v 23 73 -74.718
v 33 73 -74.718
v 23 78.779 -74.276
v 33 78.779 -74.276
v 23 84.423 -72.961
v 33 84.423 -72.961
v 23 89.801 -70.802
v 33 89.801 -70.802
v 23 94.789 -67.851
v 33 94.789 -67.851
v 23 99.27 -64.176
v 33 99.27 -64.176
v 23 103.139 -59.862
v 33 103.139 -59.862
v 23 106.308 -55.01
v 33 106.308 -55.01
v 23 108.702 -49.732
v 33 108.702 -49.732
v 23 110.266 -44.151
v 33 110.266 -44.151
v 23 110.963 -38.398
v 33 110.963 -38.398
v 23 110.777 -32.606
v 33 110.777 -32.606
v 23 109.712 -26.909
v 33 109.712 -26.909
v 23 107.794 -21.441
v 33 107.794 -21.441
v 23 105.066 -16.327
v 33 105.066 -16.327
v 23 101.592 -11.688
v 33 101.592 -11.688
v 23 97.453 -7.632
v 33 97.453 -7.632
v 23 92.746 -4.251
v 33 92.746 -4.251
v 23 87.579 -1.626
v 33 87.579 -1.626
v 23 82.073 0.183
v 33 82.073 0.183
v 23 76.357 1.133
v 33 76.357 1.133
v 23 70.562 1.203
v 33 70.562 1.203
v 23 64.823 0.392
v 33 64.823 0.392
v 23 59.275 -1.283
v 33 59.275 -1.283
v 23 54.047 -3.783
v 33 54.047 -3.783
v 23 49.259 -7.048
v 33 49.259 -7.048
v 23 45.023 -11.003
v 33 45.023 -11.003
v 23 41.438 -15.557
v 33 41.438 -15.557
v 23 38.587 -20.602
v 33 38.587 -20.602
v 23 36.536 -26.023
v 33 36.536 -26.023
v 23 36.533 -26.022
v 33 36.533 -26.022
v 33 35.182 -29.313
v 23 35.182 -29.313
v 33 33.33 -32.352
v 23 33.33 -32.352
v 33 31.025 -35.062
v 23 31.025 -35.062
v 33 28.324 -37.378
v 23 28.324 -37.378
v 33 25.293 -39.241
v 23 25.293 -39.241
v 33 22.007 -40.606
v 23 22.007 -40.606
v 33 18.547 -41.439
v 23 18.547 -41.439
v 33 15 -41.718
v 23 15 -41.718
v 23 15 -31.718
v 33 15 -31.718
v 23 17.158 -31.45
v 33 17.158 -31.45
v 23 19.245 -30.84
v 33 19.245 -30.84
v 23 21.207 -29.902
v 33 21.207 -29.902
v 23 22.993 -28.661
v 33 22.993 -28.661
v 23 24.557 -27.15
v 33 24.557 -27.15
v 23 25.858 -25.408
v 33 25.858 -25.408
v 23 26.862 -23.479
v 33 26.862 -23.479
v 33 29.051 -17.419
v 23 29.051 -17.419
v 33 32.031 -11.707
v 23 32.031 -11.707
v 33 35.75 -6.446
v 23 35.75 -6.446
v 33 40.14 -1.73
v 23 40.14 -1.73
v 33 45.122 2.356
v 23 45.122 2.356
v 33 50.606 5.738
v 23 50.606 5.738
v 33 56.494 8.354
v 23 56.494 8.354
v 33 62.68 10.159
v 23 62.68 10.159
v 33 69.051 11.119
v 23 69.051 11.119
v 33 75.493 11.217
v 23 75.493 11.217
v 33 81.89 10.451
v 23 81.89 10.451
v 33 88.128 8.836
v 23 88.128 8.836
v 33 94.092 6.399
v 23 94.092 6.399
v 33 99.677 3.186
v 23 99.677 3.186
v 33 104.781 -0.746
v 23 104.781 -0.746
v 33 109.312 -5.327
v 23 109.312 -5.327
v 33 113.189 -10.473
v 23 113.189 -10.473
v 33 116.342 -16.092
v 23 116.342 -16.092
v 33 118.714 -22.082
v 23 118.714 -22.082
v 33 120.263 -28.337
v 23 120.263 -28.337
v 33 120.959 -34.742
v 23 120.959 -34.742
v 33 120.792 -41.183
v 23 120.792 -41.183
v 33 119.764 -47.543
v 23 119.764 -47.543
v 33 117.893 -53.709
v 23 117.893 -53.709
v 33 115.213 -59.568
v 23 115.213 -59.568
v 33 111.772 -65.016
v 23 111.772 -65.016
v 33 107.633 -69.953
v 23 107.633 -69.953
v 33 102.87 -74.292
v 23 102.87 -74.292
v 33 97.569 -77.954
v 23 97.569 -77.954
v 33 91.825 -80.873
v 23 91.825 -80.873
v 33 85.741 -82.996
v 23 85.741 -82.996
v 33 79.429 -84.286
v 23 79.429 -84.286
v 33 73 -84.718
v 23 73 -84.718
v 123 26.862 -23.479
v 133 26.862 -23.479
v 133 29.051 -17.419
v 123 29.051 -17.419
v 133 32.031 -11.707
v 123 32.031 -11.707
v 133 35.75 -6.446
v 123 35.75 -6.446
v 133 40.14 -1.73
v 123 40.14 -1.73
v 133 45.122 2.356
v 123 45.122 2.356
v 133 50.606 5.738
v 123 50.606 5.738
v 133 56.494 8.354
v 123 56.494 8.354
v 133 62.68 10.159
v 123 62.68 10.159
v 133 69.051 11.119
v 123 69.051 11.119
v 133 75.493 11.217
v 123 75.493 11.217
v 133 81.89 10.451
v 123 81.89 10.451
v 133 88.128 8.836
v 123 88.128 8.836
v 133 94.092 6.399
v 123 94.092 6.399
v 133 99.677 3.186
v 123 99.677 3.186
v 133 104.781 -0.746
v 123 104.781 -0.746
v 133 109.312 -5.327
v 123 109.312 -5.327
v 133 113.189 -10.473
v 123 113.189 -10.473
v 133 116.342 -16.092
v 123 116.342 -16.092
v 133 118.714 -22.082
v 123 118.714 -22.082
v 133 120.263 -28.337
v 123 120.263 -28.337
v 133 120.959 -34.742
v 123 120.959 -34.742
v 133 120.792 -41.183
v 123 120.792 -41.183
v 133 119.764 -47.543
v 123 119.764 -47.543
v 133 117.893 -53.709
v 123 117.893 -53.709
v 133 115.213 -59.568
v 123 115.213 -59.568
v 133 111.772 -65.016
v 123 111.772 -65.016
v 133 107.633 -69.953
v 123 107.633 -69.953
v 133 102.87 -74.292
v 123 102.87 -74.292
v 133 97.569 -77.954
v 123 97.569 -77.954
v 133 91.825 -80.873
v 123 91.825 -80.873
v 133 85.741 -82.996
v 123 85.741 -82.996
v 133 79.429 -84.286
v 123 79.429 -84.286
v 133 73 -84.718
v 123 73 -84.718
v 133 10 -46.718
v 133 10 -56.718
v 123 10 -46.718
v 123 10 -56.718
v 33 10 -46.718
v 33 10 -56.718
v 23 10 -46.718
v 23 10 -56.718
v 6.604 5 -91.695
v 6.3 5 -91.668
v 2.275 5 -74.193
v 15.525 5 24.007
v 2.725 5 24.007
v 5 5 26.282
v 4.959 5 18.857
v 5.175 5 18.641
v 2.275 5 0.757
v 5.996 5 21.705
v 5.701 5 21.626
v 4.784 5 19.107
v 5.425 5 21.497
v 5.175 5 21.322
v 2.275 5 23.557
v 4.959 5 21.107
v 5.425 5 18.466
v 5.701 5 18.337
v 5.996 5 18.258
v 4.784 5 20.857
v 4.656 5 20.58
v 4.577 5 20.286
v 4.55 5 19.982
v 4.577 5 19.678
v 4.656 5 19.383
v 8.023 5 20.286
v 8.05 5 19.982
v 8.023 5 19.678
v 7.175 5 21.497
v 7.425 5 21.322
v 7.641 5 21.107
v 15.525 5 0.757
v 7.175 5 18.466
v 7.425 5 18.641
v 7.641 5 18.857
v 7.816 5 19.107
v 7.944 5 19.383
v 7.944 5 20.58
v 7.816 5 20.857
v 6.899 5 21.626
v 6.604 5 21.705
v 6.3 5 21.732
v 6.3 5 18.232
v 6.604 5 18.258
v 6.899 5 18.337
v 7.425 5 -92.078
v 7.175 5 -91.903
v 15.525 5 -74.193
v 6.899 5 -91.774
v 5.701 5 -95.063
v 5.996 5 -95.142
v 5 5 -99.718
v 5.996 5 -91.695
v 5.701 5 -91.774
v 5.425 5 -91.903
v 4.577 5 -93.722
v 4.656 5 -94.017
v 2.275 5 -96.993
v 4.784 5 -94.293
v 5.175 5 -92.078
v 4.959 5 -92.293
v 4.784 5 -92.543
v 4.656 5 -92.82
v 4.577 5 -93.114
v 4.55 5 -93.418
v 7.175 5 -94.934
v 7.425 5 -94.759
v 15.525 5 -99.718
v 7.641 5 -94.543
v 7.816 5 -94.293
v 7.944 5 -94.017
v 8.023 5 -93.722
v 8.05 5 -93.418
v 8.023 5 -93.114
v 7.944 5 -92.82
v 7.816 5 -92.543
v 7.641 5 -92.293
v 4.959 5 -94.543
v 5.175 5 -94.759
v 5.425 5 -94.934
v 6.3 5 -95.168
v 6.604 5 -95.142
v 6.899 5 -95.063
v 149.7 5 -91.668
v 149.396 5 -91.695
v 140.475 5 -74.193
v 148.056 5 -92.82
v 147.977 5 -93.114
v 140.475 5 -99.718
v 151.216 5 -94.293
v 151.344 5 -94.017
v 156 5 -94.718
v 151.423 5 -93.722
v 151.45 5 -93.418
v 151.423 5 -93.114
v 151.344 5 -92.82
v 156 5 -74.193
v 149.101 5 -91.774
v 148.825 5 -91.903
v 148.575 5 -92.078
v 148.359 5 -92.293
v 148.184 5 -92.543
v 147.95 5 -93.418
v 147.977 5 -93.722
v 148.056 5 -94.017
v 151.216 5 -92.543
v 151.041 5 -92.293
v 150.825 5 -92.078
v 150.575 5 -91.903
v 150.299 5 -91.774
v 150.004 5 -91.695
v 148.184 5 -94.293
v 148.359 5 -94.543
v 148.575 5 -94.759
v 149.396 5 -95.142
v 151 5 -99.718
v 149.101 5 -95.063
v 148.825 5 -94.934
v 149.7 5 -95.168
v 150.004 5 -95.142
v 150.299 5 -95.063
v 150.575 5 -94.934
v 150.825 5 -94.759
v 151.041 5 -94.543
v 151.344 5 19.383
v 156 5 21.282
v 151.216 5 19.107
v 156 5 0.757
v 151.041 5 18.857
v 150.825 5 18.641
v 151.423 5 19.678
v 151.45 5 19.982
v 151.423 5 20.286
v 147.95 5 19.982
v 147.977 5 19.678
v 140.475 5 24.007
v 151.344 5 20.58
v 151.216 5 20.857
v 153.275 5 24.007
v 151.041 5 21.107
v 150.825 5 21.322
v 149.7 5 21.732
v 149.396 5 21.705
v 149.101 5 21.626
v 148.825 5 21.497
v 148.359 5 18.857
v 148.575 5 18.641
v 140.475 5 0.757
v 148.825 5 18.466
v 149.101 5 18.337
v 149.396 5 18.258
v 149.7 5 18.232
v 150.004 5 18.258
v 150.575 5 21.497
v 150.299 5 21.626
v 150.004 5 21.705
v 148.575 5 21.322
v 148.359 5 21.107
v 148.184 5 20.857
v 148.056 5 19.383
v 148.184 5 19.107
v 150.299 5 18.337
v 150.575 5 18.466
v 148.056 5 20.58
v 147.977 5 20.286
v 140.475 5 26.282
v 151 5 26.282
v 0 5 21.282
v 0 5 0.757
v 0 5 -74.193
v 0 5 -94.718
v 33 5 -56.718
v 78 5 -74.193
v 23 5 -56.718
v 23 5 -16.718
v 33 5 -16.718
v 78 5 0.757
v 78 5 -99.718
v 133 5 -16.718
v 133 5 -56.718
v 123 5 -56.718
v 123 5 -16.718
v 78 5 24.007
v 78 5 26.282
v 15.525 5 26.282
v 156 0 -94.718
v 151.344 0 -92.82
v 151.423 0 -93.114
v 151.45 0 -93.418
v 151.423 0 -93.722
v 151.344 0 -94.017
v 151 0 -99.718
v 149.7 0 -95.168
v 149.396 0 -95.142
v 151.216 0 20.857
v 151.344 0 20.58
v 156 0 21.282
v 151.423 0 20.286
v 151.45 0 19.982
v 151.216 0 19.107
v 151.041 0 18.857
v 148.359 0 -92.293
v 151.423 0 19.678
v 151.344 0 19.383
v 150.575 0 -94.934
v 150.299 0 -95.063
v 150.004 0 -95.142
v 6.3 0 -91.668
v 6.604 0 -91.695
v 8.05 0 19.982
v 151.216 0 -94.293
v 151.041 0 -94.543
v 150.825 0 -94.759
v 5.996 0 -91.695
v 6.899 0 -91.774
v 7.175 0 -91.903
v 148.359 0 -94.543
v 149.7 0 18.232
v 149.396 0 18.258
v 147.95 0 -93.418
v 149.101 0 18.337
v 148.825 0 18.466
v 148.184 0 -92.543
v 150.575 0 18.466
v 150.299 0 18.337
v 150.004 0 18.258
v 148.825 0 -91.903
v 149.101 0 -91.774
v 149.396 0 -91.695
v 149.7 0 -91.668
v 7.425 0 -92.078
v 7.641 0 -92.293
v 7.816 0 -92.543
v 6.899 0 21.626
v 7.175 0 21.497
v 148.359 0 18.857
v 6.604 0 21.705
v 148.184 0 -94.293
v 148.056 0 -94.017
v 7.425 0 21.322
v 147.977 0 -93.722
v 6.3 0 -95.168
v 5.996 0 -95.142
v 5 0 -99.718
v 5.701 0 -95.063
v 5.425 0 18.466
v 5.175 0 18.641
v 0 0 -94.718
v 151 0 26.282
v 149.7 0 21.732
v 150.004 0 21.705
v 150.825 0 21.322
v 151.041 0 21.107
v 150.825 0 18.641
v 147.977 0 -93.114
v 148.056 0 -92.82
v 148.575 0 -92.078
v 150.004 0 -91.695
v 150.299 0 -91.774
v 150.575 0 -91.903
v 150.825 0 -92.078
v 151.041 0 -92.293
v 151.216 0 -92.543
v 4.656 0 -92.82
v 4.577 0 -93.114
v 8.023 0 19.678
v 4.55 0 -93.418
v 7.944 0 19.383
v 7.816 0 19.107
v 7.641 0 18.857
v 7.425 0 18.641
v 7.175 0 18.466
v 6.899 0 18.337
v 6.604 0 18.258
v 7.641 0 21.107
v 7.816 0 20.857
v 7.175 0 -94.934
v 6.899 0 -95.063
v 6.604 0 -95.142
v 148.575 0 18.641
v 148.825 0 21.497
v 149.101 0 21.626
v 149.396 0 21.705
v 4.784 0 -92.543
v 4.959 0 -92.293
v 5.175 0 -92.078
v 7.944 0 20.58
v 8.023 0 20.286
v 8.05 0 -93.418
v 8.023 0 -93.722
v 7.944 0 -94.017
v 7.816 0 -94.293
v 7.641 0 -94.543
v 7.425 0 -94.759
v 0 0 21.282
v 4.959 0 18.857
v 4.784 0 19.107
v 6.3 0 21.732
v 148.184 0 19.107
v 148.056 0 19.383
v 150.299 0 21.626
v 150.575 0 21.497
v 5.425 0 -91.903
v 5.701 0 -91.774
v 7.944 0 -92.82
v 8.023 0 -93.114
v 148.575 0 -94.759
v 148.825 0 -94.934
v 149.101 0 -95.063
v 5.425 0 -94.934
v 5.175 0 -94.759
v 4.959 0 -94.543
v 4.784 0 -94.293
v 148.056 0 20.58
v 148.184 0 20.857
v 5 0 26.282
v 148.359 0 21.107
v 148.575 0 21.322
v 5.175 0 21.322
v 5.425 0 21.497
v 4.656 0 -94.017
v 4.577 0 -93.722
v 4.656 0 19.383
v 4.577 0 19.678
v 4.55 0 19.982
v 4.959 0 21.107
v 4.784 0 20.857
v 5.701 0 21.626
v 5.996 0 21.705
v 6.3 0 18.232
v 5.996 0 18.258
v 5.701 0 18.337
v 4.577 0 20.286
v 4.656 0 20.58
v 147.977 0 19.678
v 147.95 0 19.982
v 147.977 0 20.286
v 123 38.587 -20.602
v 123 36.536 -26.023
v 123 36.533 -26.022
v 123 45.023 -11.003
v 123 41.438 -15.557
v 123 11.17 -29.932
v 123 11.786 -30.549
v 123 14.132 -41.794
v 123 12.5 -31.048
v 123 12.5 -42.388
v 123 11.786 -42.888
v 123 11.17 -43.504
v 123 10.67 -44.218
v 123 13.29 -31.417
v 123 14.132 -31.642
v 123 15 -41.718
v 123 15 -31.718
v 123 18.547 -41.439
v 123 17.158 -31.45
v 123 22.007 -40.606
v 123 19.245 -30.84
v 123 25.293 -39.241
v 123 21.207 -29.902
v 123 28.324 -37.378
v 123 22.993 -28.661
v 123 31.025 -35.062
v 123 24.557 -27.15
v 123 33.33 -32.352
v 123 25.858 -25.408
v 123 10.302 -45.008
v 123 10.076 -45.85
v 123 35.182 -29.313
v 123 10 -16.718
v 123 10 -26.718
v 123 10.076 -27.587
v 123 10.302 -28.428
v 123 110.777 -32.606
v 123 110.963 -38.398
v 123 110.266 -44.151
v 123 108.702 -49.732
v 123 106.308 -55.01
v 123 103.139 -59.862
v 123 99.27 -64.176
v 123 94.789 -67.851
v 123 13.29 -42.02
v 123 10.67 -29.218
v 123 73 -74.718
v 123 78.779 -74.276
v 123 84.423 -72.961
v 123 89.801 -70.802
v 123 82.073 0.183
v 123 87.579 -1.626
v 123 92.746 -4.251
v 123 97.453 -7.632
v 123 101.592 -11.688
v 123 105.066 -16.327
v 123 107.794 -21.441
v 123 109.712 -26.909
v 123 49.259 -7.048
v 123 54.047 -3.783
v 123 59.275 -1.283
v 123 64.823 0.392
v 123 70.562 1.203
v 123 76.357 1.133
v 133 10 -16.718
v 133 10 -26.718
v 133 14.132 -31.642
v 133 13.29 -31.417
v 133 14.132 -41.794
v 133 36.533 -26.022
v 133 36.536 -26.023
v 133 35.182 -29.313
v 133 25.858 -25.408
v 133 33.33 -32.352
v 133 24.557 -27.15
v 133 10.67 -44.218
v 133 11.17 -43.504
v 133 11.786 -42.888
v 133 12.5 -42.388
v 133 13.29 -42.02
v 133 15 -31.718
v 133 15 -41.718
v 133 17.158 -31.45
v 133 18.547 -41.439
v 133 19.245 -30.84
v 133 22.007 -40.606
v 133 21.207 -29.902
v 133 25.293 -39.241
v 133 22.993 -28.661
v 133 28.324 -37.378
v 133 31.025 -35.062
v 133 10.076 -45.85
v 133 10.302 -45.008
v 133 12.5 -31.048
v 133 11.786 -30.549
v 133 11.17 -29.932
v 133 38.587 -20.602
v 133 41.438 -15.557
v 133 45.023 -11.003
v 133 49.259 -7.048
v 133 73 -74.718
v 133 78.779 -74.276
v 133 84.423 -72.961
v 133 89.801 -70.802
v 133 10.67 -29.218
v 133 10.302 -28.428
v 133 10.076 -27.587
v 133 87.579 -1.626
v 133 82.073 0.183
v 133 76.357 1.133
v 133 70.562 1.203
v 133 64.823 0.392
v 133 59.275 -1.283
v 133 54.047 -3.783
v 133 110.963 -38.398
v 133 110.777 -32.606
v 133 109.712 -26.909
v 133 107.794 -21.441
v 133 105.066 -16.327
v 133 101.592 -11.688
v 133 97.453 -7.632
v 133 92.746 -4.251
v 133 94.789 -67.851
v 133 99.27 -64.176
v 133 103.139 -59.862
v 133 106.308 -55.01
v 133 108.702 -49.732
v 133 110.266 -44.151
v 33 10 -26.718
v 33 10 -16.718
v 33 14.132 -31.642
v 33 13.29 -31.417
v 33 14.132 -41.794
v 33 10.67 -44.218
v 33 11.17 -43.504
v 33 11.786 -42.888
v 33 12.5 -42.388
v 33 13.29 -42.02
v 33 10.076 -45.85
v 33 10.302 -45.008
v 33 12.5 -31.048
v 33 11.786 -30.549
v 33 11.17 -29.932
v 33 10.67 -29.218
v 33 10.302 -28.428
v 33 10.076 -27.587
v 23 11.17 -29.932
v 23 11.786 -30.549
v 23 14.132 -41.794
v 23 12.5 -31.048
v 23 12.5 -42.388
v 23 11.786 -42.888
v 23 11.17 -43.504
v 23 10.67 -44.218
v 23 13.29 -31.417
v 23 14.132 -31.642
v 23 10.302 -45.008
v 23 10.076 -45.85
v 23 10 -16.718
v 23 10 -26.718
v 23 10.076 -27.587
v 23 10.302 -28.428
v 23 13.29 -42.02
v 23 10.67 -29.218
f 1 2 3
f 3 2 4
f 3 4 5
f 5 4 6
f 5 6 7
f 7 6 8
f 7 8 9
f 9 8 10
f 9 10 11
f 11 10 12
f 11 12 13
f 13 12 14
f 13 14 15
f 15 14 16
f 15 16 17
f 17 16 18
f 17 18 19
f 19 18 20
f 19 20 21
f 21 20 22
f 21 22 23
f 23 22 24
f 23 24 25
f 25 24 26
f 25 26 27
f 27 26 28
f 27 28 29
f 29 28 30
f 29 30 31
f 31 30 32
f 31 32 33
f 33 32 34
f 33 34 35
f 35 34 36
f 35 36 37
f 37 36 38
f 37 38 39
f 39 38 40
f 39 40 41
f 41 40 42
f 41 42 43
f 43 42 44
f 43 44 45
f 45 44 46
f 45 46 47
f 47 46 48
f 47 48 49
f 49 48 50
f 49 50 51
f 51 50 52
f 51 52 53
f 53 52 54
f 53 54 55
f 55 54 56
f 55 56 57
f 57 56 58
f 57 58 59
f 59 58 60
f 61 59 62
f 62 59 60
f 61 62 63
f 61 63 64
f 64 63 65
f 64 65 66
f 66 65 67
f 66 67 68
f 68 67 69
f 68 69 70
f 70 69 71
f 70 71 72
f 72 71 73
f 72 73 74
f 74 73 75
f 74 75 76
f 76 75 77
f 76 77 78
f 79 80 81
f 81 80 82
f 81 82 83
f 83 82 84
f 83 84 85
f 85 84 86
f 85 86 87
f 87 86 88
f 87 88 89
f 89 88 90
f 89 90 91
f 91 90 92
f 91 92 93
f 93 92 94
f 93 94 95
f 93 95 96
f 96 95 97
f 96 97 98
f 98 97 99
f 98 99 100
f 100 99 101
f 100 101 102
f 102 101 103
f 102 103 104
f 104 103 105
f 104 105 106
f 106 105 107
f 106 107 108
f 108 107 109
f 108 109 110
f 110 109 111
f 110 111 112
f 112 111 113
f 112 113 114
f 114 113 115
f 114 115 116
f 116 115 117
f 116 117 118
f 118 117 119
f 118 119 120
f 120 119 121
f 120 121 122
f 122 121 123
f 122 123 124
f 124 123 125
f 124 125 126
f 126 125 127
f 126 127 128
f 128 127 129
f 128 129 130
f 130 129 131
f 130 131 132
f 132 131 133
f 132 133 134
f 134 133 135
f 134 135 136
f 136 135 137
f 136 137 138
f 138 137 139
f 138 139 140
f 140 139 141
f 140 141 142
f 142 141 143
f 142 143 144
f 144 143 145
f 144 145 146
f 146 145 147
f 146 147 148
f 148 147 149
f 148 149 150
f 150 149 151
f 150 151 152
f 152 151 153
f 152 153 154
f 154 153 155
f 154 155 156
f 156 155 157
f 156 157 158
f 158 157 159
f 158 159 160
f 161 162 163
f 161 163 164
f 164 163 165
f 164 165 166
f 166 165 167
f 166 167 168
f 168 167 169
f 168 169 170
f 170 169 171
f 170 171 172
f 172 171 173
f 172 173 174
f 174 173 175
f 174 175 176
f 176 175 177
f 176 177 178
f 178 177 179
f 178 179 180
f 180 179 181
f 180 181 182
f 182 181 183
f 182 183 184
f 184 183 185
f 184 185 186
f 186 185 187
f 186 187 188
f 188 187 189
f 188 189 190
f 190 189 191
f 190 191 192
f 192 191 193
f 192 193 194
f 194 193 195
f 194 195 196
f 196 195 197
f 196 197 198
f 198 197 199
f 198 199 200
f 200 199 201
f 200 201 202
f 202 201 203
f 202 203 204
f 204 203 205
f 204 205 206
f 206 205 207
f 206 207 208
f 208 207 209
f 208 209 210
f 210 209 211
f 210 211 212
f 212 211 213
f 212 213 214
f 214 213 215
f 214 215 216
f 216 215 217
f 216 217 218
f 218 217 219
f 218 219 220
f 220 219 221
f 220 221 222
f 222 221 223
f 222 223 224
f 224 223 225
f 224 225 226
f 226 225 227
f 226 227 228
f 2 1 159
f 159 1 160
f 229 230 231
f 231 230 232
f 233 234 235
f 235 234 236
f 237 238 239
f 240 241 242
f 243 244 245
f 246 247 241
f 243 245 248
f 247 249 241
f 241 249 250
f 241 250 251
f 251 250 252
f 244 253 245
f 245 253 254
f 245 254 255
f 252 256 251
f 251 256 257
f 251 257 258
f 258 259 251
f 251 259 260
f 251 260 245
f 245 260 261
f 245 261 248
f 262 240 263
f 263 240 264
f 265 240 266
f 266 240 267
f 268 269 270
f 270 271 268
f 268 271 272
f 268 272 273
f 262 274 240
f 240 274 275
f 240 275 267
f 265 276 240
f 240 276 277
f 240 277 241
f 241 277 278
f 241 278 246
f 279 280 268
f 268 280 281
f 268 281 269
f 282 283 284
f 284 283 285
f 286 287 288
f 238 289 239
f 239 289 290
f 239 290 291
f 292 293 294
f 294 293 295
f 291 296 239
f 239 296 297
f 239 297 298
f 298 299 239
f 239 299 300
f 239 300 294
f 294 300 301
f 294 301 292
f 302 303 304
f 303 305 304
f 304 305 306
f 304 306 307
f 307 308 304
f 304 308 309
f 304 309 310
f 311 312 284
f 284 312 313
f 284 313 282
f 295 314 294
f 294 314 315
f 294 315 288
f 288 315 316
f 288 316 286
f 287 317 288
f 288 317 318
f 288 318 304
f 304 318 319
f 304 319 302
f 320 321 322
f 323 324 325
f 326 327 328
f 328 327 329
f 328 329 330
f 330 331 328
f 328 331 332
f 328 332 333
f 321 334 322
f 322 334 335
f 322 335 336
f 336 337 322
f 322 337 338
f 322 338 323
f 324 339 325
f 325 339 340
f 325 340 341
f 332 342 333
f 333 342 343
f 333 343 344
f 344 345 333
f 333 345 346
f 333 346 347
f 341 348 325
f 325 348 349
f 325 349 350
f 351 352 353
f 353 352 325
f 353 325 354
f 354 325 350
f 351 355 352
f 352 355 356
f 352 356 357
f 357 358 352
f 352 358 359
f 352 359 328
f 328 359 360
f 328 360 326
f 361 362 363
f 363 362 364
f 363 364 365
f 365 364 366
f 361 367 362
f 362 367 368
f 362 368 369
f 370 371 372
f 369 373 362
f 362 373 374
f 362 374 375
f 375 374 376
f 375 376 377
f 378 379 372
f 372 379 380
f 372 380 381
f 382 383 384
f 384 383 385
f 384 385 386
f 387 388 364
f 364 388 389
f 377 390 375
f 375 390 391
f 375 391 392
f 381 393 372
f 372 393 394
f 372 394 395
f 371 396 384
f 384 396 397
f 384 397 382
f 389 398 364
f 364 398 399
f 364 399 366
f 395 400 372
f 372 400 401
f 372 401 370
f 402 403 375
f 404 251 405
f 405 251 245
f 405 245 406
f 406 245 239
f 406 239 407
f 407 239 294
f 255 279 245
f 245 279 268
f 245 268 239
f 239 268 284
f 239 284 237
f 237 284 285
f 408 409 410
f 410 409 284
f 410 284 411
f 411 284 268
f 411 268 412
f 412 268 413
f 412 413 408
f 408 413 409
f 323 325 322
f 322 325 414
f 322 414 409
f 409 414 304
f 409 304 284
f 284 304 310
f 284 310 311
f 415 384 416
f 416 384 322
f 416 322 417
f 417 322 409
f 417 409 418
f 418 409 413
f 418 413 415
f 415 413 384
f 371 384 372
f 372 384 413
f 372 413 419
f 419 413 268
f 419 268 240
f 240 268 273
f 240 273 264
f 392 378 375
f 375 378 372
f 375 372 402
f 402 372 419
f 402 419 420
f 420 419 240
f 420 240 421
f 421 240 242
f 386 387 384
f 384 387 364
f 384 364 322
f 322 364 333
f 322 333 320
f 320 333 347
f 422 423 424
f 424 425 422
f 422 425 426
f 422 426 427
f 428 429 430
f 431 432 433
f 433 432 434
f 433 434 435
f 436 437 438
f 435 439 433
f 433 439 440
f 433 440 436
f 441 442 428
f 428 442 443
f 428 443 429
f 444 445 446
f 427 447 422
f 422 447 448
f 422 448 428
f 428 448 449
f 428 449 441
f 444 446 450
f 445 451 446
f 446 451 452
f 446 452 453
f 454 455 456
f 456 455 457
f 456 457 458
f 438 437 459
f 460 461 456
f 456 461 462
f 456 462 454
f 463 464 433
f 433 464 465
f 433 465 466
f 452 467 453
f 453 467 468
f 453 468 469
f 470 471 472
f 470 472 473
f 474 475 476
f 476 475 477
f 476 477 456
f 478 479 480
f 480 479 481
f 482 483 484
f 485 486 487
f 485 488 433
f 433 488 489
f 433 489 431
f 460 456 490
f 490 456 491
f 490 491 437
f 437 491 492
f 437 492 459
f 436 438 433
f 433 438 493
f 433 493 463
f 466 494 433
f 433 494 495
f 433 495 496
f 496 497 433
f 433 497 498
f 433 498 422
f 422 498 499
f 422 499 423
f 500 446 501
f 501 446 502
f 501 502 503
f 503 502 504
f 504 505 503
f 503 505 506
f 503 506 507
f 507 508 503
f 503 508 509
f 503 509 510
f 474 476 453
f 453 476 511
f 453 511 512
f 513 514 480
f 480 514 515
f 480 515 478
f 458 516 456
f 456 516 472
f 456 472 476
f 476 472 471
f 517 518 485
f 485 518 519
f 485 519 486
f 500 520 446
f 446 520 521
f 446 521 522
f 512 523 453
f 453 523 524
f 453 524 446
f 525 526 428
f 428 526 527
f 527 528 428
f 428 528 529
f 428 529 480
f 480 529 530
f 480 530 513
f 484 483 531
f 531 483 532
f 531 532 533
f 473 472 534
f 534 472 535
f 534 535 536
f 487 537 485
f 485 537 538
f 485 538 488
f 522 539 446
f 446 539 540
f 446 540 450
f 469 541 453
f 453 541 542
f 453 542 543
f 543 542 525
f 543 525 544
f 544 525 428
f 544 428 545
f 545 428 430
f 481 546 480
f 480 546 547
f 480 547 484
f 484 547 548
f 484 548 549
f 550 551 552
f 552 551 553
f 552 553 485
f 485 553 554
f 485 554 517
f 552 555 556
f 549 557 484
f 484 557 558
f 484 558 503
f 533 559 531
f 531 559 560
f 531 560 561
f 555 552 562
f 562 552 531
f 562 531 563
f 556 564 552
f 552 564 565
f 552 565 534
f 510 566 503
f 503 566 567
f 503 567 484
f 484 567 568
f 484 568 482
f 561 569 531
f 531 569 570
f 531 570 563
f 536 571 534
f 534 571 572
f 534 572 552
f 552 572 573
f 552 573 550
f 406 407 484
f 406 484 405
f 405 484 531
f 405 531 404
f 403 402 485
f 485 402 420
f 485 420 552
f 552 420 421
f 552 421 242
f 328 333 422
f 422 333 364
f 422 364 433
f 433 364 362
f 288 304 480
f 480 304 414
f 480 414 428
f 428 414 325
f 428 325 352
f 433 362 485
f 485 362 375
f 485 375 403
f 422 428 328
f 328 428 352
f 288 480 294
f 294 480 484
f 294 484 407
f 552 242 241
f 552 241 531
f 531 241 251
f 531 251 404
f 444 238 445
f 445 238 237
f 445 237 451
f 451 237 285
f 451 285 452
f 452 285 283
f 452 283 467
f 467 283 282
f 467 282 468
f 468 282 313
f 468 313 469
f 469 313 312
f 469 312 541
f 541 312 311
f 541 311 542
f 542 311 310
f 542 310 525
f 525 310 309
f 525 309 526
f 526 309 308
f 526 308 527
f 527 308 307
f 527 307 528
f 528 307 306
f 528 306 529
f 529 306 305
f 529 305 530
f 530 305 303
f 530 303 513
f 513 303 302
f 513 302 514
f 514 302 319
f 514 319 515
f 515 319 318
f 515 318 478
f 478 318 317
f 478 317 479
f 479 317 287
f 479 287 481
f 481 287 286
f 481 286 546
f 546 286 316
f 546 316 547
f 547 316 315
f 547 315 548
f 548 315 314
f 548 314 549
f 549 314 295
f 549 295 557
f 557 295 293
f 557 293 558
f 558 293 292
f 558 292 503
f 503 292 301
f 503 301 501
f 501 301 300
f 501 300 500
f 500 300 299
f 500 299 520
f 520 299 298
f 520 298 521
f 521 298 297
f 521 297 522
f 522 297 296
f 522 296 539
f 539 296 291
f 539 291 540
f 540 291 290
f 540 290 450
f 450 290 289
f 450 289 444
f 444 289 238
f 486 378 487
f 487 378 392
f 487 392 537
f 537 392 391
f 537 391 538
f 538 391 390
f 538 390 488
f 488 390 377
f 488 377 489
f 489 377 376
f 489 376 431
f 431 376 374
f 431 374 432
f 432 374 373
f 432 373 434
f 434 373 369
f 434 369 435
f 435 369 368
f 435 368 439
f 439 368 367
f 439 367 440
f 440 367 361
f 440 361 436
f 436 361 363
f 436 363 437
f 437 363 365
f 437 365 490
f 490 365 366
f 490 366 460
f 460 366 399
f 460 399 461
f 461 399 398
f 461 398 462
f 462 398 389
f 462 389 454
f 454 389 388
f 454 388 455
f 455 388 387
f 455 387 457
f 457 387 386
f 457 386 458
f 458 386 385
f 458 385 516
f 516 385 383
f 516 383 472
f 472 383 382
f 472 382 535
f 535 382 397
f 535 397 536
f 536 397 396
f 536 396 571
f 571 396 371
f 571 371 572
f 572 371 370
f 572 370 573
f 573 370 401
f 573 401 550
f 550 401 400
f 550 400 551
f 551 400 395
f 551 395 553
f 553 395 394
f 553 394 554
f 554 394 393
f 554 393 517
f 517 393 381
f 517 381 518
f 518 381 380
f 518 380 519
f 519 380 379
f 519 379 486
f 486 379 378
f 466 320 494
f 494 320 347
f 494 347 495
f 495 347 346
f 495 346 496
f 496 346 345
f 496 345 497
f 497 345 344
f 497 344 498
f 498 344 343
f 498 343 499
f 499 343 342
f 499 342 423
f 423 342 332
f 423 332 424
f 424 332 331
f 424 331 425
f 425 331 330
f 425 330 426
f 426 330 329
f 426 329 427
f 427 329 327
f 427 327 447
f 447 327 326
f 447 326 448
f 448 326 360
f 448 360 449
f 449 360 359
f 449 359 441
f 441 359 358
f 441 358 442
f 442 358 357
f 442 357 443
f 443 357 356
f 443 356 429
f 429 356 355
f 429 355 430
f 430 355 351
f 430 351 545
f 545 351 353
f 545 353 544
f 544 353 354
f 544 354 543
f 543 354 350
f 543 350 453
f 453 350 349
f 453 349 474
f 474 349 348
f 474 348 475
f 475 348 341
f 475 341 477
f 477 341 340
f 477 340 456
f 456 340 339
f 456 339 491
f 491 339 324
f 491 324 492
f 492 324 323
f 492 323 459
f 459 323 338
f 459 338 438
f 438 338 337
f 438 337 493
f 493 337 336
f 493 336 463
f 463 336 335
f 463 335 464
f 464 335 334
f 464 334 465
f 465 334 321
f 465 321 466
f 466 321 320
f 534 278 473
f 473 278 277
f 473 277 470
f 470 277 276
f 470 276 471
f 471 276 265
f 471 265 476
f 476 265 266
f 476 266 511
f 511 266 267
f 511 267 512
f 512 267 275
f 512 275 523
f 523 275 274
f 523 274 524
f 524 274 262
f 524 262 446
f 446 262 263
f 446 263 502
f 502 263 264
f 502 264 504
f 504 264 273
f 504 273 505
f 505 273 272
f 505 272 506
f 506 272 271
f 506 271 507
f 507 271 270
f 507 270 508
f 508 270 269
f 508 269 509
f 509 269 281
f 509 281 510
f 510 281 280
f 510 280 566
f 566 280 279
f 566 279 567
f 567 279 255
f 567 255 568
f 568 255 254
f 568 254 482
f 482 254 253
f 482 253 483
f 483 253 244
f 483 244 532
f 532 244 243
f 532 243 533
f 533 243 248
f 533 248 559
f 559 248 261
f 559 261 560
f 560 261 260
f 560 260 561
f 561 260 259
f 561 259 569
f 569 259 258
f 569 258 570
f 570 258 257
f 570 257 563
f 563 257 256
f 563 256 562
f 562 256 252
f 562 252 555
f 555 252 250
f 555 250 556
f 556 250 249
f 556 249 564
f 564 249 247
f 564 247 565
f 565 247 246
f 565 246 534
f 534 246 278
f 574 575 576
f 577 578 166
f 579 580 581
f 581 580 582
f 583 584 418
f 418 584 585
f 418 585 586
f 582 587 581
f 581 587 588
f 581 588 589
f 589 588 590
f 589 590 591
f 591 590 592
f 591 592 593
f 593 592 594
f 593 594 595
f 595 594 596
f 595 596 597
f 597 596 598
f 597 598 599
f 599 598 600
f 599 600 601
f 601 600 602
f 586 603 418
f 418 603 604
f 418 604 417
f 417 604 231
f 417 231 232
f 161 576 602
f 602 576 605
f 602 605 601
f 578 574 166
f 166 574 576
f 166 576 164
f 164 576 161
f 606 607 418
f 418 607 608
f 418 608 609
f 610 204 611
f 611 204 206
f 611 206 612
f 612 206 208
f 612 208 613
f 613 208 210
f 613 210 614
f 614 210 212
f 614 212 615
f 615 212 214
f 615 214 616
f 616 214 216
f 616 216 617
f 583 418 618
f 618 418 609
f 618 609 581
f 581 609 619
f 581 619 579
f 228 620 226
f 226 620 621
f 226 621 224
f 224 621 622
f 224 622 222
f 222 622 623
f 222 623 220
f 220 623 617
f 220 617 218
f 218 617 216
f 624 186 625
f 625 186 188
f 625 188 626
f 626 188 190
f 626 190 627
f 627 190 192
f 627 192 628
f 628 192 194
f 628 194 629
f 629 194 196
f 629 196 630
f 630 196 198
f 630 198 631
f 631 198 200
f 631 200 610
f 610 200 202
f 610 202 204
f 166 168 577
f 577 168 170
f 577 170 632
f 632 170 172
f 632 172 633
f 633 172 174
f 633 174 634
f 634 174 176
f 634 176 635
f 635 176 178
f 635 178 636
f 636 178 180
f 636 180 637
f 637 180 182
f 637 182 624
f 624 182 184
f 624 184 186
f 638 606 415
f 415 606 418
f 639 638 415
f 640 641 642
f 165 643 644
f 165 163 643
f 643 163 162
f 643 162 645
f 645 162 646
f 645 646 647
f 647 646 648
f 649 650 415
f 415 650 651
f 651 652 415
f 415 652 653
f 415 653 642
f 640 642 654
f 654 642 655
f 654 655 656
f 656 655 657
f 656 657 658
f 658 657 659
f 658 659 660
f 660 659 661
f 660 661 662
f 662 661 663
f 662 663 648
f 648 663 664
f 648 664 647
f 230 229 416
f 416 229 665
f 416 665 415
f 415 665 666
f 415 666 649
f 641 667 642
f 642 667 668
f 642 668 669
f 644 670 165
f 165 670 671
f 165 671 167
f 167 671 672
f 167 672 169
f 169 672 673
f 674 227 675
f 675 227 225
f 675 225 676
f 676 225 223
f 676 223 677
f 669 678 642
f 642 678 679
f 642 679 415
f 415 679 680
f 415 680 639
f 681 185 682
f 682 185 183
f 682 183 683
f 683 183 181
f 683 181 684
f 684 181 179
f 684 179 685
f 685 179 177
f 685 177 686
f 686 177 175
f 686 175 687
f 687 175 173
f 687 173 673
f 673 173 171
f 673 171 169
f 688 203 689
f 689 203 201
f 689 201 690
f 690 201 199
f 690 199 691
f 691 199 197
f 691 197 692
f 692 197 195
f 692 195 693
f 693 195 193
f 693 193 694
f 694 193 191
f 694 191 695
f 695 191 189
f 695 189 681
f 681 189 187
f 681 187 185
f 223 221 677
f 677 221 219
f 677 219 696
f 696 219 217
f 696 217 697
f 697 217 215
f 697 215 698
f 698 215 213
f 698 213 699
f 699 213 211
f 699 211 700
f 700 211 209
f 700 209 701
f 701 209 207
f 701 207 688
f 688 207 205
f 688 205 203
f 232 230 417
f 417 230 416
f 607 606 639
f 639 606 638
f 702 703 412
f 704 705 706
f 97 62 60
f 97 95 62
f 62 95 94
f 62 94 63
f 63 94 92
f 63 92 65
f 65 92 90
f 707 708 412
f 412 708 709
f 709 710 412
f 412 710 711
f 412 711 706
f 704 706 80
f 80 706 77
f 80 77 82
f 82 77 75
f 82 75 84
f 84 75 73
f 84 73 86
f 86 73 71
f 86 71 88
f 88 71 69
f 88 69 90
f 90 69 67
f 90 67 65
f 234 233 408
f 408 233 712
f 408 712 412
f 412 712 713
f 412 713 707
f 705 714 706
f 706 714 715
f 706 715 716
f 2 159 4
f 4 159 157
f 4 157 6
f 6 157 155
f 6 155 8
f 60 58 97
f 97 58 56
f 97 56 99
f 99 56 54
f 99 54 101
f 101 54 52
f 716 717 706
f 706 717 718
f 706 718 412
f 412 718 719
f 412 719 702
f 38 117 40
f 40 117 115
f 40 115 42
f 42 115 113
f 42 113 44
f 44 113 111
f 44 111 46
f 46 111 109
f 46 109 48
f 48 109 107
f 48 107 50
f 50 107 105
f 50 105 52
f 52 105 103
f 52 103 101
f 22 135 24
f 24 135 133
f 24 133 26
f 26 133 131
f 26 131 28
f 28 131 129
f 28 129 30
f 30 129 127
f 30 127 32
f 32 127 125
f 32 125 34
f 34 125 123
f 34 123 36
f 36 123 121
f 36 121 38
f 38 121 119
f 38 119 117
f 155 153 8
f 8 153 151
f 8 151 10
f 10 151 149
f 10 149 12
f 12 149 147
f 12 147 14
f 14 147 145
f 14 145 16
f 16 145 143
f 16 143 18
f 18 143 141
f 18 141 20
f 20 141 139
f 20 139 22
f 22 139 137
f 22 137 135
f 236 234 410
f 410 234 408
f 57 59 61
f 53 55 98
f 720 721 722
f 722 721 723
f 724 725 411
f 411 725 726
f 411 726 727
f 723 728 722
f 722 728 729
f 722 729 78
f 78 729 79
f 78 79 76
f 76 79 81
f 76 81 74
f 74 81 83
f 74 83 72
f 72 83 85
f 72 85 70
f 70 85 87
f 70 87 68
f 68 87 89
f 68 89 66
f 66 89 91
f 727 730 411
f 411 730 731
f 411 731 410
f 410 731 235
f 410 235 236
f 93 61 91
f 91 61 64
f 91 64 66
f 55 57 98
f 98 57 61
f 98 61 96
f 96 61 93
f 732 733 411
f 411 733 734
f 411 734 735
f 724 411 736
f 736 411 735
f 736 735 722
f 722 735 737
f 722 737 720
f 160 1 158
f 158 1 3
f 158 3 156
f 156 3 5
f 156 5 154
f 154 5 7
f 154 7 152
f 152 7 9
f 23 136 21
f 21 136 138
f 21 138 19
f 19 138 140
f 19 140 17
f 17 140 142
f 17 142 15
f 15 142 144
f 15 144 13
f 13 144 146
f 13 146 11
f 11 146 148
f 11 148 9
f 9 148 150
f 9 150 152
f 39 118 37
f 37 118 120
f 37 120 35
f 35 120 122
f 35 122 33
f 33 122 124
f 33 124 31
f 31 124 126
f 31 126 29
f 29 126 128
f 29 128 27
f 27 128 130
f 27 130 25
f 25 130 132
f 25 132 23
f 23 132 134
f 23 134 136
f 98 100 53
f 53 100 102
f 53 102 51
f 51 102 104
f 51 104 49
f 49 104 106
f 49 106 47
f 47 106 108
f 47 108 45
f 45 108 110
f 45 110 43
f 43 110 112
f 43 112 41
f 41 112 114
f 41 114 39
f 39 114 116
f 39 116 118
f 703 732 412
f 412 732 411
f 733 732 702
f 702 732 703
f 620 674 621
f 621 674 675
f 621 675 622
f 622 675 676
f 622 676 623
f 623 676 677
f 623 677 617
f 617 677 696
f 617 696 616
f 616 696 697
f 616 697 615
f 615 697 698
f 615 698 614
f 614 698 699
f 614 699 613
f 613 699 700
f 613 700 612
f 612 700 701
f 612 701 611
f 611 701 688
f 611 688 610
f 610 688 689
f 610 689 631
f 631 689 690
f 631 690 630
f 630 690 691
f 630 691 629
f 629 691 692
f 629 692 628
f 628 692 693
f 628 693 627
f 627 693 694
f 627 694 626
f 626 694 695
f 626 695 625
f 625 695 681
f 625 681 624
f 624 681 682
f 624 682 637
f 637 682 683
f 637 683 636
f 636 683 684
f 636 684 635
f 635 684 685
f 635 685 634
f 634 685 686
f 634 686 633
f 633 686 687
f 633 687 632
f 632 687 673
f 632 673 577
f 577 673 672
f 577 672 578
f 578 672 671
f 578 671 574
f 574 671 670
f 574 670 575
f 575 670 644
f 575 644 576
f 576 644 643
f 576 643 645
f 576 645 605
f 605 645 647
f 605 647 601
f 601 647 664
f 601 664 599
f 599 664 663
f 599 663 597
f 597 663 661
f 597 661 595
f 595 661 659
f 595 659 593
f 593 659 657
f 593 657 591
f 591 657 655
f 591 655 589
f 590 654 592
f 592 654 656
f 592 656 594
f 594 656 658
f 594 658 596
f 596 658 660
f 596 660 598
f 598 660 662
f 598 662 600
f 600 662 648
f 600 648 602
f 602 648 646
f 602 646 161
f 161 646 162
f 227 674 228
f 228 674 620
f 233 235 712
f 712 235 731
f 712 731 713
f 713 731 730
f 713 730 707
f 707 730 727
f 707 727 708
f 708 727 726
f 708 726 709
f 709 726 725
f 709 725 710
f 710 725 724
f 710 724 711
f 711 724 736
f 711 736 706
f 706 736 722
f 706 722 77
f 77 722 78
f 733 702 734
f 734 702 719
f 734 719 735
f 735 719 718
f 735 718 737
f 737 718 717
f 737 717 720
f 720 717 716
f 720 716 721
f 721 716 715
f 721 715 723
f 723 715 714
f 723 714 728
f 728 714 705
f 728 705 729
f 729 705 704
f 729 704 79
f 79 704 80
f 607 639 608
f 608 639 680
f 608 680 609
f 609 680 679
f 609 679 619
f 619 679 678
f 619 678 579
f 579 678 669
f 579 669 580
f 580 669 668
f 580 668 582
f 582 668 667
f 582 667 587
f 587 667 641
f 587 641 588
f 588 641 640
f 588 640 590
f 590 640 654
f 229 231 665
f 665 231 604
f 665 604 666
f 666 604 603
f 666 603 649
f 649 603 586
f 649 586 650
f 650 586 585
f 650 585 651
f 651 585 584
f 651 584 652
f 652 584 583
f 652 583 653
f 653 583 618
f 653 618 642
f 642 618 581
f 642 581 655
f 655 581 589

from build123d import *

# Parameters (mm, degrees)
SKETCH1_W                = 156
SKETCH1_H                = 126
BOSS_EXTRUDE1_DEPTH      = 5
CHAMFER1_SIZE            = 5
SKETCH2_R                = 1.75
CUT_EXTRUDE1_DEPTH       = 186.215391696
SKETCH3_W                = 5
SKETCH3_H                = 20
SKETCH3_W_2              = 10
SKETCH3_H_2              = 40
BOSS_EXTRUDE2_DEPTH      = 5
BOSS_EXTRUDE3_DEPTH      = 100
BOSS_EXTRUDE3_DEPTH_BACK = 10
SKETCH6_W                = 5
SKETCH6_H                = 5
SKETCH9_W                = 90
SKETCH9_H                = 28
SKETCH9_H_2              = 40
CUT_EXTRUDE3_DEPTH       = 219.48510549
FILLET1_R                = 5


with BuildPart() as part:
    # Sketch1 → Boss-Extrude1 (new body)
    with BuildSketch(Plane(origin=(0, 0, 0), x_dir=(1, 0, 0), z_dir=(0, 1, 0))):
        with Locations((78, 36.718309859)):
            Rectangle(SKETCH1_W, SKETCH1_H)
    extrude(amount=BOSS_EXTRUDE1_DEPTH)

    # Chamfer1
    chamfer1_edges = [part.edges().sort_by_distance(p)[0] for p in [
        (0, 2.5, -99.718309859),
        (156, 2.5, -99.718309859),
        (156, 2.5, 26.281690141),
        (0, 2.5, 26.281690141),
    ]]
    chamfer(chamfer1_edges, length=CHAMFER1_SIZE)

    # Sketch2 → Cut-Extrude1 (cut, through all)
    with BuildSketch(Plane(origin=(0, 5, 0), x_dir=(1, 0, 0), z_dir=(0, 1, 0))):
        with BuildLine():
            ThreePointArc((8.05, 93.418309859), (7.537436867, 94.655746726), (6.3, 95.168309859))
            Line((6.3, 95.168309859), (6.3, 93.418309859))
            Line((6.3, 93.418309859), (4.55, 93.418309859))
            ThreePointArc((4.55, 93.418309859), (6.3, 91.668309859), (8.05, 93.418309859))
        make_face()
        with BuildLine():
            Line((6.3, 93.418309859), (6.3, 95.168309859))
            ThreePointArc((6.3, 95.168309859), (5.062563133, 94.655746726), (4.55, 93.418309859))
            Line((4.55, 93.418309859), (6.3, 93.418309859))
        make_face()
        with Locations(Location((149.7, -19.981690141, 0), (0, 0, 270))):
            Circle(SKETCH2_R)
        with Locations(Location((149.7, 93.418309859, 0), (0, 0, 270))):
            Circle(SKETCH2_R)
        with Locations(Location((6.3, -19.981690141, 0), (0, 0, 90))):
            Circle(SKETCH2_R)
    extrude(amount=-CUT_EXTRUDE1_DEPTH, mode=Mode.SUBTRACT)

    # Sketch3 → Boss-Extrude2 (add)
    with BuildSketch(Plane(origin=(0, 5, 0), x_dir=(1, 0, 0), z_dir=(0, 1, 0))):
        with Locations((130.5, 46.718309859)):
            Rectangle(SKETCH3_W, SKETCH3_H)
        with Locations((125.5, 46.718309859)):
            Rectangle(SKETCH3_W, SKETCH3_H)
        Polygon((128, 36.718309859), (123, 36.718309859), (123, 16.718309859), (133, 16.718309859), (133, 36.718309859), align=None)
        with Locations((28, 36.718309859)):
            Rectangle(SKETCH3_W_2, SKETCH3_H_2)
    extrude(amount=BOSS_EXTRUDE2_DEPTH)

    # Sketch6 → Boss-Extrude3 (add, two sides: drawn at the far end of the back side and taken through both)
    with BuildSketch(Plane.ZY.offset(-123).offset(-BOSS_EXTRUDE3_DEPTH_BACK)):
        with BuildLine():
            ThreePointArc((-47.881645859, 119.68382942), (-74.400136566, 102.733481734), (-84.718309859, 73))
            Line((-84.718309859, 73), (-74.718309859, 73))
            ThreePointArc((-74.718309859, 73), (-66.480360629, 96.626686903), (-45.338292281, 110.009402901))
            Line((-45.338292281, 110.009402901), (-47.881645859, 119.68382942))
        make_face()
        with BuildLine():
            ThreePointArc((11.281690141, 73), (-6.984828126, 110.681826707), (-47.881645859, 119.68382942))
            Line((-47.881645859, 119.68382942), (-45.338292281, 110.009402901))
            ThreePointArc((-45.338292281, 110.009402901), (-13.091622957, 102.76205077), (1.281690141, 73))
            Line((1.281690141, 73), (11.281690141, 73))
        make_face()
        with BuildLine():
            Line((-26.022614728, 36.536290566), (-26.021811715, 36.53323606))
            Line((-26.021811715, 36.53323606), (-23.47926115, 26.861864046))
            ThreePointArc((-23.47926115, 26.861864046), (1.618841431, 44.116391656), (11.281690141, 73))
            Line((11.281690141, 73), (1.281690141, 73))
            ThreePointArc((1.281690141, 73), (-6.30091011, 50.223218126), (-26.022614728, 36.536290566))
        make_face()
        with BuildLine():
            ThreePointArc((-26.021811715, 36.53323606), (-33.846189614, 32.151003399), (-39.352290573, 25.072323803))
            ThreePointArc((-39.352290573, 25.072323803), (-31.340812266, 25.302174896), (-23.47926115, 26.861864046))
            Line((-23.47926115, 26.861864046), (-26.021811715, 36.53323606))
        make_face()
        with BuildLine():
            ThreePointArc((-39.352290573, 25.072323803), (-41.119015586, 20.173278405), (-41.718309859, 15))
            Line((-41.718309859, 15), (-36.718309859, 15))
            Line((-36.718309859, 15), (-31.718309859, 15))
            ThreePointArc((-31.718309859, 15), (-29.317648494, 22.124824976), (-23.47926115, 26.861864046))
            ThreePointArc((-23.47926115, 26.861864046), (-31.340812266, 25.302174896), (-39.352290573, 25.072323803))
        make_face()
        with Locations((-34.218309859, 12.5)):
            Rectangle(SKETCH6_W, SKETCH6_H)
        with Locations((-39.218309859, 12.5)):
            Rectangle(SKETCH6_W, SKETCH6_H)
    extrude(amount=BOSS_EXTRUDE3_DEPTH + BOSS_EXTRUDE3_DEPTH_BACK)

    # Sketch9 → Cut-Extrude3 (cut, through all)
    with BuildSketch(Plane(origin=(0, 5, 0), x_dir=(1, 0, 0), z_dir=(0, 1, 0))):
        with Locations((78, 70.718309859)):
            Rectangle(SKETCH9_W, SKETCH9_H)
        with Locations((78, 36.718309859)):
            Rectangle(SKETCH9_W, SKETCH9_H_2)
        with Locations((78, 2.718309859)):
            Rectangle(SKETCH9_W, SKETCH9_H)
    extrude(amount=CUT_EXTRUDE3_DEPTH, mode=Mode.SUBTRACT)

    # Fillet1
    fillet1_edges = [part.edges().sort_by_distance(p)[0] for p in [
        (28, 10, -41.718309859),
        (28, 10, -31.718309859),
        (128, 10, -31.718309859),
        (128, 10, -41.718309859),
    ]]
    fillet(fillet1_edges, radius=FILLET1_R - 0.0001)  # a hair under: the kernel refuses the full size


solid = part.part
